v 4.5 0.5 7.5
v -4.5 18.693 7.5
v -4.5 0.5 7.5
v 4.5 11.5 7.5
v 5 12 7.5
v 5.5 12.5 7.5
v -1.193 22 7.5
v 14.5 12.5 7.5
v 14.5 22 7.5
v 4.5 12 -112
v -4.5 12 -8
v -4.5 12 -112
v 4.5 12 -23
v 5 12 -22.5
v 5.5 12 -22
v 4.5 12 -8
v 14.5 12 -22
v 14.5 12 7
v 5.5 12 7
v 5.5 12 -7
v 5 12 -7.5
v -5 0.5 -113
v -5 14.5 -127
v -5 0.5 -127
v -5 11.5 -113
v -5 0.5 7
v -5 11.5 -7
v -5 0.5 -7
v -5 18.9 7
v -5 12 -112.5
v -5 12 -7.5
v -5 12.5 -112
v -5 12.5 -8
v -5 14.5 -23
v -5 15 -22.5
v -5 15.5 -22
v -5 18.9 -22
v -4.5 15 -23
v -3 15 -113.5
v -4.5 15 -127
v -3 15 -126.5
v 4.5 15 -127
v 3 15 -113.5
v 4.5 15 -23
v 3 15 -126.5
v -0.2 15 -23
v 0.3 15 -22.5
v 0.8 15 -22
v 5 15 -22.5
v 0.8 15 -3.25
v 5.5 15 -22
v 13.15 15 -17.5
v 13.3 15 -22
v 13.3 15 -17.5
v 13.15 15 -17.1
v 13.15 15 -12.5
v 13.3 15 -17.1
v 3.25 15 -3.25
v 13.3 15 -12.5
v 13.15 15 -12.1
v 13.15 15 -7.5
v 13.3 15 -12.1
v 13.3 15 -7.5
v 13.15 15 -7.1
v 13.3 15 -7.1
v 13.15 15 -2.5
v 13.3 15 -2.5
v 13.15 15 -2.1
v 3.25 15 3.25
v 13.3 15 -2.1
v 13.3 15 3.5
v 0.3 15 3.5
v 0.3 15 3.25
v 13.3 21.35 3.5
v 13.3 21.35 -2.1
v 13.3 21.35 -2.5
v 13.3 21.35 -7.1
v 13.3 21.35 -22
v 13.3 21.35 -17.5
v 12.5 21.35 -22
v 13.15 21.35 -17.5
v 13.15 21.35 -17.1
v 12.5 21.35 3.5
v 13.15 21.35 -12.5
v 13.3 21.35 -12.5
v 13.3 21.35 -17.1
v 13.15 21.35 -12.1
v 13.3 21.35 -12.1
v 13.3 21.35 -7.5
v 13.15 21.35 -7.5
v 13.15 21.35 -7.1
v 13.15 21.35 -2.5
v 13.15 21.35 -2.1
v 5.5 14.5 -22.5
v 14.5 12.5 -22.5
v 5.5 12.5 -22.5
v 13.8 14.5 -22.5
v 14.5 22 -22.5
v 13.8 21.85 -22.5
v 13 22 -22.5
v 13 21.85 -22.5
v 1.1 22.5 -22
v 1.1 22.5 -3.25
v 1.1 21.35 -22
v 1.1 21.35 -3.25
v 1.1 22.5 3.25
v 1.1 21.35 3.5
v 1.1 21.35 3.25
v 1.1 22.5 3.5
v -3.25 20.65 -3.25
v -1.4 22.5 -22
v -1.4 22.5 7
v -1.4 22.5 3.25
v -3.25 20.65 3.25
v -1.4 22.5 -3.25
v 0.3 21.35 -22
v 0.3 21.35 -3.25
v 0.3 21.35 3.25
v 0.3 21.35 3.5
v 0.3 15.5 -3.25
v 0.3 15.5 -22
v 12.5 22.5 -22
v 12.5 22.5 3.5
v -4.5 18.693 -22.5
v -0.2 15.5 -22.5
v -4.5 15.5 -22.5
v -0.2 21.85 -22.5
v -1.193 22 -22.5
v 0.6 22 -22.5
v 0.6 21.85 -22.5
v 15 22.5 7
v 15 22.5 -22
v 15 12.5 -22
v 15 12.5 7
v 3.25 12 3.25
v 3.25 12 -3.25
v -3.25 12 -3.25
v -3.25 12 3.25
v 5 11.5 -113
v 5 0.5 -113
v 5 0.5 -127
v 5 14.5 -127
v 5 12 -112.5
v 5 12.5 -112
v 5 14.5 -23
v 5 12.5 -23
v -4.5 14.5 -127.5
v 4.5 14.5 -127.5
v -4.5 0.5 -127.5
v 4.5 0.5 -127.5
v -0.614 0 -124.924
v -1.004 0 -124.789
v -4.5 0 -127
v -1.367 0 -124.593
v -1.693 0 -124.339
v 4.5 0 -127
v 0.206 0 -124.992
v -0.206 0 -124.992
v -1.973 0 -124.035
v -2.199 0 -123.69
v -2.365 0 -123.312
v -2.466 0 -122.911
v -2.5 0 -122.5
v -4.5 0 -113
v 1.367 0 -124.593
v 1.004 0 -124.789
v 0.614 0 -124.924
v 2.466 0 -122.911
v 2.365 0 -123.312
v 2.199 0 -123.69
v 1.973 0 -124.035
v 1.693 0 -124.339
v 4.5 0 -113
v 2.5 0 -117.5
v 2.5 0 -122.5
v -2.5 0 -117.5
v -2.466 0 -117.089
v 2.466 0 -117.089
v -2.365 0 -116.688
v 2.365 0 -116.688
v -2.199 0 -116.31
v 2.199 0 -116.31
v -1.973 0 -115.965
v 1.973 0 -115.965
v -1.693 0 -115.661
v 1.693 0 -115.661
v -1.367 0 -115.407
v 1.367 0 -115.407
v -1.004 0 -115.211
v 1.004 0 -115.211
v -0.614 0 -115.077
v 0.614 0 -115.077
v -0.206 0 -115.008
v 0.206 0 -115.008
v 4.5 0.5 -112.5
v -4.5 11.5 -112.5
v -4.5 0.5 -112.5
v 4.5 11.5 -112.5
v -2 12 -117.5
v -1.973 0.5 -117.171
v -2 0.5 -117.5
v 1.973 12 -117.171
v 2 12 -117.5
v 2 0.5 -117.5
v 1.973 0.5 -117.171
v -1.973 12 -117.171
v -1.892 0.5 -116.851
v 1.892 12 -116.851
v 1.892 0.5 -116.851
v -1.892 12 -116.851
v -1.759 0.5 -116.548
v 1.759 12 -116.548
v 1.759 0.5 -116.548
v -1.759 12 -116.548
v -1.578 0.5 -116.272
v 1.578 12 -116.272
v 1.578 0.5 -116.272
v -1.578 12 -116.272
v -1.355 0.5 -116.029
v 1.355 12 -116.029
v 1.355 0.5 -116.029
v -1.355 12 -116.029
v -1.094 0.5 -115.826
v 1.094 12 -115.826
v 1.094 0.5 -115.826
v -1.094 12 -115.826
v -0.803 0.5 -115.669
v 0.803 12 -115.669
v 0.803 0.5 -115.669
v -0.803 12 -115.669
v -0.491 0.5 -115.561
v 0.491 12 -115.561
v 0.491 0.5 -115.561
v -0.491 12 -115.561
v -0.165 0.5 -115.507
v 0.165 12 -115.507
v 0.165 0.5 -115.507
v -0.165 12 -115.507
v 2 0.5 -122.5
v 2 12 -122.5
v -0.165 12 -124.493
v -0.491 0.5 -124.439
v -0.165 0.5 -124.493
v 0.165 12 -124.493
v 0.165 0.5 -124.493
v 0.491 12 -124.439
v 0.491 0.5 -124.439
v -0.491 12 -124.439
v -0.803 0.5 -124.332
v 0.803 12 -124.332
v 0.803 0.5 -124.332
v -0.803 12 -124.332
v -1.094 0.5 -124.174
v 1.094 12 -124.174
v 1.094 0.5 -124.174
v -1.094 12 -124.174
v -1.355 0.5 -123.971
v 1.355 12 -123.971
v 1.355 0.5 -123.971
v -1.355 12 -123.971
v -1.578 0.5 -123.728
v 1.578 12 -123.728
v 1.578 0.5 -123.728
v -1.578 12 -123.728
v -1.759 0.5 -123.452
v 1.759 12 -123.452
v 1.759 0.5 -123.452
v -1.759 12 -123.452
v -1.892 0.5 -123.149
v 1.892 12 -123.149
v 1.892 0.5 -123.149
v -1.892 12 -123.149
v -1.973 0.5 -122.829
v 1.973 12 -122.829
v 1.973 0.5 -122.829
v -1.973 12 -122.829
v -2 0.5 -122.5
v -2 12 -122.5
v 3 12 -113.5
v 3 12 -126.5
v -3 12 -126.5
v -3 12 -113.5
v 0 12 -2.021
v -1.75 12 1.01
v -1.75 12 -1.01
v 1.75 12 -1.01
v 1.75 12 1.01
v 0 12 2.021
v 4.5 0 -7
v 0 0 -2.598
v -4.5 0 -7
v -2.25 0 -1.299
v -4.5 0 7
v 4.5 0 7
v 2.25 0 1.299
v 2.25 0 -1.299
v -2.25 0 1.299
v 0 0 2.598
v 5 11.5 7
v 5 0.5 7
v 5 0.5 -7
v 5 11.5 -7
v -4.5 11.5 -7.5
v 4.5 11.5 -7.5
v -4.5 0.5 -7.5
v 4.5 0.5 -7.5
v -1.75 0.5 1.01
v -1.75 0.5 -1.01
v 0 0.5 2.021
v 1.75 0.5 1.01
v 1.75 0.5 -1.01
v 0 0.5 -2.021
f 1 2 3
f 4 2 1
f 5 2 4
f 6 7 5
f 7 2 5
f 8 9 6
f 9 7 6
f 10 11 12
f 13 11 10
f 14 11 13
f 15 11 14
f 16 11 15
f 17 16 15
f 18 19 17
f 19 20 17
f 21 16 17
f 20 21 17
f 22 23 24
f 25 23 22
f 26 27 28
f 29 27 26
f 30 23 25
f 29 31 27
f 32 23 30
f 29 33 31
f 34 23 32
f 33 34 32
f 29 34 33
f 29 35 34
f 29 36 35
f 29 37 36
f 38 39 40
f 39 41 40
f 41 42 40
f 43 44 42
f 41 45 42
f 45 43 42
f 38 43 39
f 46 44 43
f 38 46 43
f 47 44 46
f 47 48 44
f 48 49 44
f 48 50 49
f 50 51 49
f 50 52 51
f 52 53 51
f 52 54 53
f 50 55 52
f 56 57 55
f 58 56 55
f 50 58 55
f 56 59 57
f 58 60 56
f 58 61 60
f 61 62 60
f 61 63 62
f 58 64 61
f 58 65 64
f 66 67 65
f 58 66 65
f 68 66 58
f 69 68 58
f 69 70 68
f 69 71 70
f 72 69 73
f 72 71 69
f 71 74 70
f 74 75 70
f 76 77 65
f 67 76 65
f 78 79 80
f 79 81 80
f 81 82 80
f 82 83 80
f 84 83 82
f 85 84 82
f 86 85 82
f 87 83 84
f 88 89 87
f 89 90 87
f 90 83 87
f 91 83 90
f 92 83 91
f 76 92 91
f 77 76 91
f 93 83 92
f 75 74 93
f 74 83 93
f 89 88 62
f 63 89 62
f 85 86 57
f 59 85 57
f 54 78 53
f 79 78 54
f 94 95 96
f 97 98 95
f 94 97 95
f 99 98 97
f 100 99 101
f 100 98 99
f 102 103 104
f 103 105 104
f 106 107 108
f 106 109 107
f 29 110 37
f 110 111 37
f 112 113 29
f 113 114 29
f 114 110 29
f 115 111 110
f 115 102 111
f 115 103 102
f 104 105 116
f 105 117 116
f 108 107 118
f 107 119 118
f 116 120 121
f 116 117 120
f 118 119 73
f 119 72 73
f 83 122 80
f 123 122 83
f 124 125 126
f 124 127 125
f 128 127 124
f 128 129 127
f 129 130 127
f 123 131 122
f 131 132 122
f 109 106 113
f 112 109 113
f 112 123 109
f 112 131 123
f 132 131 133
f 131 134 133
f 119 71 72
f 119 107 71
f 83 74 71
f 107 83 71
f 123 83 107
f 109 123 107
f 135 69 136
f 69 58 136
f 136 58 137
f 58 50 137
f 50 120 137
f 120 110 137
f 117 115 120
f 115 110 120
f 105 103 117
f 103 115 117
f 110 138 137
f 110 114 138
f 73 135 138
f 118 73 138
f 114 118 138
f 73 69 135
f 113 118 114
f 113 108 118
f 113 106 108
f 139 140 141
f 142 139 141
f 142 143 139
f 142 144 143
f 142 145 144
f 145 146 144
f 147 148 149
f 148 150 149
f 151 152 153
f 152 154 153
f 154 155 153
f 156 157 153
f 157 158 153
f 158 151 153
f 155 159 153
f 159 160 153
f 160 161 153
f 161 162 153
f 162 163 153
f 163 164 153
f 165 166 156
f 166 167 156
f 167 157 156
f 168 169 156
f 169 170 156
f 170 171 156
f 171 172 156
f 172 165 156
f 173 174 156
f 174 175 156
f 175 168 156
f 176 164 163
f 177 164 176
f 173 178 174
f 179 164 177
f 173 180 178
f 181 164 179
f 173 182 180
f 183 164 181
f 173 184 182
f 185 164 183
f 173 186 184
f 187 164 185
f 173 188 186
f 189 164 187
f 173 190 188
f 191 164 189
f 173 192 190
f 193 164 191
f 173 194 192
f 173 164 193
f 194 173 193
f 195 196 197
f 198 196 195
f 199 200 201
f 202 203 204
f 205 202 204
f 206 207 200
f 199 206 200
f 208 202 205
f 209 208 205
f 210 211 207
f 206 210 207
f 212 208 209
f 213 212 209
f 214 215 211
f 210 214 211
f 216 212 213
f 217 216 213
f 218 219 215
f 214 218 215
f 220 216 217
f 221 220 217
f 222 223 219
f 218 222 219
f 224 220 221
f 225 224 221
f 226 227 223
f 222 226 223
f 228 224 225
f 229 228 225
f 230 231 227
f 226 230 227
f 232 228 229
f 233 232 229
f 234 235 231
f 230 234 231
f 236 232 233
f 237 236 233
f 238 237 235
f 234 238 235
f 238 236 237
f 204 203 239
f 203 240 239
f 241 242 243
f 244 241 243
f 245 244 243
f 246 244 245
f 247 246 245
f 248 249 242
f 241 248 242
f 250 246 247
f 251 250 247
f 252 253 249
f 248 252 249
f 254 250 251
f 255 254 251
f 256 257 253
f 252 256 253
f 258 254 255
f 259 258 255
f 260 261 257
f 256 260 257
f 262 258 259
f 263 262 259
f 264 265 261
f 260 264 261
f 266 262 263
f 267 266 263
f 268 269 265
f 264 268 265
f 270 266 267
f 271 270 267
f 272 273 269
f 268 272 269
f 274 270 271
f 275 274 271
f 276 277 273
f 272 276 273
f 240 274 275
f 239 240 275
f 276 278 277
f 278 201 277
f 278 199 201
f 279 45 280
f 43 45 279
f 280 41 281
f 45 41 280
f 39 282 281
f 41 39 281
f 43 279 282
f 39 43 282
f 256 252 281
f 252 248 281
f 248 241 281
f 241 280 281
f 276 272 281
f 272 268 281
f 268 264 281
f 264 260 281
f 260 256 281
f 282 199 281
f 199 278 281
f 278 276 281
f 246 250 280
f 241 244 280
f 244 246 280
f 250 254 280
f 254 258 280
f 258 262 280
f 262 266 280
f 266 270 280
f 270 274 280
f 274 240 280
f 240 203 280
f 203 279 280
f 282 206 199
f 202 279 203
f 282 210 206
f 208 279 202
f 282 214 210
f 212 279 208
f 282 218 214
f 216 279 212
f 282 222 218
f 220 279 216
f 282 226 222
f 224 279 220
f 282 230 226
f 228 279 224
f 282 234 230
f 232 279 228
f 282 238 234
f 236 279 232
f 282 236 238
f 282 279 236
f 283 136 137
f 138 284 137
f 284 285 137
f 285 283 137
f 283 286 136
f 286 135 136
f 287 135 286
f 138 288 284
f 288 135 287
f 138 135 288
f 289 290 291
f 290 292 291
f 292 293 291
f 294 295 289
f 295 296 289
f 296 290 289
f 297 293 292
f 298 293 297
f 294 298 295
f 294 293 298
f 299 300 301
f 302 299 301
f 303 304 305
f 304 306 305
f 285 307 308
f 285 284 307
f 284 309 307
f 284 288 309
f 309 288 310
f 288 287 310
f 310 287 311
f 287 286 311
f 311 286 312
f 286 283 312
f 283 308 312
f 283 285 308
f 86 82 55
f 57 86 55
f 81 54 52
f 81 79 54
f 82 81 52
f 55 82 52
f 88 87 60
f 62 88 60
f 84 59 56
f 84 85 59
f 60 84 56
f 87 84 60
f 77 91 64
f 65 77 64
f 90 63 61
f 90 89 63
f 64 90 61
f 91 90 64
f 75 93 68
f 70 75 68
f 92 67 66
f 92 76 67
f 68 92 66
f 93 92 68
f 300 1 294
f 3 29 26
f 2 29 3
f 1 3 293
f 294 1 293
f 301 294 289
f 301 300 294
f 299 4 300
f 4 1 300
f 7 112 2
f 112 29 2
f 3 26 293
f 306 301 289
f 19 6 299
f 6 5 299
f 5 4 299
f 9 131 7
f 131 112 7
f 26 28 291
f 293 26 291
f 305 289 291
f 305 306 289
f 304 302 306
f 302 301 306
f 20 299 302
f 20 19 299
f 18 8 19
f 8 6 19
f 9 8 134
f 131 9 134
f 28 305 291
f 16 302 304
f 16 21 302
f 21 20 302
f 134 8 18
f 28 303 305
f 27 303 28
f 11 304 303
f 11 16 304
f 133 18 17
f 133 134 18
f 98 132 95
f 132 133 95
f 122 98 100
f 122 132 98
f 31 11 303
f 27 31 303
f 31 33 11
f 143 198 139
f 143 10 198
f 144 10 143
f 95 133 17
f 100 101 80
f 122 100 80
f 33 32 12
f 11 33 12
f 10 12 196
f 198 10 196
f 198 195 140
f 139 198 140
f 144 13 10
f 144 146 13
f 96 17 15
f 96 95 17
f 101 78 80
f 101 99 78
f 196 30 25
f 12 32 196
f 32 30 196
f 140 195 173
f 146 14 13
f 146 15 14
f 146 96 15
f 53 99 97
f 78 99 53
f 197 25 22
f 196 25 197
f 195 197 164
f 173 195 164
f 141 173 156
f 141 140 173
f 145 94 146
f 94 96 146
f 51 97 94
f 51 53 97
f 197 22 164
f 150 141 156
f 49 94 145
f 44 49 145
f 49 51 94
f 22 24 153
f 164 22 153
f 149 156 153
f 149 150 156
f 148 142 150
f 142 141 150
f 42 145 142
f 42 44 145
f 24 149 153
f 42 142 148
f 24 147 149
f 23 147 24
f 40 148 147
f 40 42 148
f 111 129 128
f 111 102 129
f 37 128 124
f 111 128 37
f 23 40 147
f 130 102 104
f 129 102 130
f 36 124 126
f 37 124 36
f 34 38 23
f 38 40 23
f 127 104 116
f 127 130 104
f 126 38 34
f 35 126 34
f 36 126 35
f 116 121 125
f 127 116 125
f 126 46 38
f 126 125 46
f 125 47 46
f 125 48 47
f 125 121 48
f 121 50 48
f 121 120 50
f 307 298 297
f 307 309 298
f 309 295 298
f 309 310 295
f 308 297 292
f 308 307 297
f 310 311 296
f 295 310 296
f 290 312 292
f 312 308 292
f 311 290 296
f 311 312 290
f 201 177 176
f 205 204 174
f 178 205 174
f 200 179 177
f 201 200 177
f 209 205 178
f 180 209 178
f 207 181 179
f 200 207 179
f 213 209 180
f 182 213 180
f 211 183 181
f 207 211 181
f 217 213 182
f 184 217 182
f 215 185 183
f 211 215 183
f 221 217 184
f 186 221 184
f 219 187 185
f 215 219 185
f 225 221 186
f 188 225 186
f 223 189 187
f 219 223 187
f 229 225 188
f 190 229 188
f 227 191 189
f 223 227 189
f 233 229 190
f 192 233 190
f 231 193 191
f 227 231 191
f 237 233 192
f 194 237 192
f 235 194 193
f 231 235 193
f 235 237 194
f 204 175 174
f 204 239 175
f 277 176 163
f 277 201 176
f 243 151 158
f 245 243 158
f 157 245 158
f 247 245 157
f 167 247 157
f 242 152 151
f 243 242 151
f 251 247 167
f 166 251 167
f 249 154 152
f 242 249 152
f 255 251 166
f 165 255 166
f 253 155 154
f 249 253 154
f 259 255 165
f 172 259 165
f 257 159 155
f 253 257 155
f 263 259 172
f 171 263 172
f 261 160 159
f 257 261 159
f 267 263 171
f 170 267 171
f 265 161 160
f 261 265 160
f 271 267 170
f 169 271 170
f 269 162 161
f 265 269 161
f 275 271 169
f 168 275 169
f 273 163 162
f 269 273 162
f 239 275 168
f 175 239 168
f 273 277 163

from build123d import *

# Parameters (mm, degrees)
SKETCH2_W             = 10
SKETCH2_H             = 15
BOSS_EXTRUDE1_DEPTH   = 12
BOSS_EXTRUDE1_2_DEPTH = 12
BOSS_EXTRUDE2_DEPTH   = 30
CUT_EXTRUDE3_START    = -0.8
SKETCH5_W             = 26
SKETCH5_H             = 6.35
CUT_EXTRUDE3_DEPTH    = 13
SKETCH9_W             = 6.5
SKETCH9_H             = 6.5
CUT_EXTRUDE7_DEPTH    = 129.938939037
SKETCH11_W            = 11.4
SKETCH11_H            = 7.5
BOSS_EXTRUDE3_DEPTH   = 4
SKETCH12_W            = 10
SKETCH12_H            = 3
BOSS_EXTRUDE4_DEPTH   = 105
SKETCH13_W            = 6
SKETCH13_H            = 13
CUT_EXTRUDE9_DEPTH    = 129.938939037
SKETCH16_W            = 0.4
SKETCH16_H            = 6.35
BOSS_EXTRUDE5_DEPTH   = 0.15
CHAMFER3_SIZE         = 0.5


with BuildPart() as part:
    # Sketch2 → Boss-Extrude1 (new body)
    with BuildSketch(Plane(origin=(0, 0, 0), x_dir=(1, 0, 0), z_dir=(0, 1, 0))):
        Rectangle(SKETCH2_W, SKETCH2_H)
        Polygon((-1.75, -1.010362971), (0, -2.020725942), (1.75, -1.010362971), (1.75, 1.010362971), (0, 2.020725942), (-1.75, 1.010362971), align=None, mode=Mode.SUBTRACT)
    extrude(amount=BOSS_EXTRUDE1_DEPTH)


with BuildPart() as body_2:
    # Sketch2 → Boss-Extrude1 2 (new body)
    with BuildSketch(Plane(origin=(0, 0, 0), x_dir=(1, 0, 0), z_dir=(0, 1, 0))):
        with Locations((0, 120)):
            Rectangle(SKETCH2_W, SKETCH2_H)
        with BuildLine():
            Line((-2, 117.5), (-2, 122.5))
            ThreePointArc((-2, 122.5), (0, 124.5), (2, 122.5))
            Line((2, 122.5), (2, 117.5))
            ThreePointArc((2, 117.5), (0, 115.5), (-2, 117.5))
        make_face(mode=Mode.SUBTRACT)
    extrude(amount=BOSS_EXTRUDE1_2_DEPTH)



with BuildPart() as body_3:
    # Sketch3 → Boss-Extrude2 (new body)
    with BuildSketch(Plane.XY.offset(7.5)):
        Polygon((-1.4, 22.5), (1.1, 22.5), (1.1, 15), (12.5, 15), (12.5, 22.5), (15, 22.5), (15, 12), (-5, 12), (-5, 18.9), align=None)
    extrude(amount=-BOSS_EXTRUDE2_DEPTH)

    # Sketch5 → Cut-Extrude3 (cut)
    with BuildSketch(Plane.ZY.offset(-12.5).offset(CUT_EXTRUDE3_START)):
        with Locations((-9.5, 18.175)):
            Rectangle(SKETCH5_W, SKETCH5_H)
    extrude(amount=CUT_EXTRUDE3_DEPTH, mode=Mode.SUBTRACT)

    # Sketch9 → Cut-Extrude7 (cut, through all)
    with BuildSketch(Plane(origin=(0, 12, 0), x_dir=(1, 0, 0), z_dir=(0, 1, 0))):
        Rectangle(SKETCH9_W, SKETCH9_H)
    extrude(amount=CUT_EXTRUDE7_DEPTH, mode=Mode.SUBTRACT)

    # Sketch11 → Boss-Extrude3 (add)
    with BuildSketch(Plane.XY.offset(7.5)):
        with Locations((6.8, 18.75)):
            Rectangle(SKETCH11_W, SKETCH11_H)
    extrude(amount=-BOSS_EXTRUDE3_DEPTH)


with BuildPart() as body_2_1:
    add(body_2.part)

    add(body_3.part)  # Boss-Extrude4 merges body 3
    # Sketch12 → Boss-Extrude4 (add)
    with BuildSketch(Plane(origin=(0, 0, -22.5), x_dir=(-1, 0, 0), z_dir=(0, 0, -1))):
        with Locations((0, 13.5)):
            Rectangle(SKETCH12_W, SKETCH12_H)
    extrude(amount=BOSS_EXTRUDE4_DEPTH)

    # Sketch13 → Cut-Extrude9 (cut, through all)
    with BuildSketch(Plane.XZ.offset(-12)):
        with Locations((0, -120)):
            Rectangle(SKETCH13_W, SKETCH13_H)
    extrude(amount=-CUT_EXTRUDE9_DEPTH, mode=Mode.SUBTRACT)

    # Combine2: union part
    add(part.part)

    # Sketch16 → Boss-Extrude5 (add)
    with BuildSketch(Plane.ZY.offset(-13.3)):
        with Locations((-17.3, 18.175)):
            Rectangle(SKETCH16_W, SKETCH16_H)
        with Locations((-12.3, 18.175)):
            Rectangle(SKETCH16_W, SKETCH16_H)
        with Locations((-7.3, 18.175)):
            Rectangle(SKETCH16_W, SKETCH16_H)
        with Locations((-2.3, 18.175)):
            Rectangle(SKETCH16_W, SKETCH16_H)
    extrude(amount=BOSS_EXTRUDE5_DEPTH)

    # Chamfer3
    chamfer3_edges = [body_2_1.edges().sort_by_distance(p)[0] for p in [
        (10, 12, -22.5),
        (5, 7.5, -127.5),
        (5, 15, -75),
        (5, 13.5, -22.5),
        (0, 15, -127.5),
        (-5, 15, -75),
        (-2.35, 15, -22.5),
        (-5, 7.5, -127.5),
        (-5, 12, -60),
        (5, 12, -67.5),
        (0, 12, -112.5),
        (-2, 0, -120),
        (0, 0, -115.5),
        (2, 0, -120),
        (0, 0, -124.5),
        (5, 0, -120),
        (5, 6, -112.5),
        (0, 0, -127.5),
        (-5, 0, -120),
        (0, 0, -112.5),
        (-5, 6, -112.5),
        (15, 17.25, 7.5),
        (-5, 9.45, 7.5),
        (15, 17.25, -22.5),
        (10, 12, 7.5),
        (5, 12, 0),
        (0, 12, -7.5),
        (-0.875, 0, -1.515544457),
        (-1.75, 0, 0),
        (-0.875, 0, 1.515544457),
        (0.875, 0, 1.515544457),
        (1.75, 0, 0),
        (0.875, 0, -1.515544457),
        (5, 0, 0),
        (5, 6, 7.5),
        (0, 0, -7.5),
        (5, 6, -7.5),
        (-5, 0, 0),
        (-5, 6, -7.5),
        (0, 0, 7.5),
        (15, 12, -7.5),
        (13.75, 22.5, -22.5),
        (12.5, 21.925, -22.5),
        (9.15, 15, -22.5),
        (1.1, 21.925, -22.5),
        (12.9, 21.35, -22.5),
        (-0.15, 22.5, -22.5),
        (0.7, 21.35, -22.5),
        (0.3, 18.175, -22.5),
        (13.3, 18.175, -22.5),
        (-3.2, 20.7, -22.5),
        (-5, 16.95, -22.5),
        (0.3, 15, -12.875),
        (-3.2, 20.7, 7.5),
        (6.8, 22.5, 7.5),
    ]]
    chamfer(chamfer3_edges, length=CHAMFER3_SIZE)


solid = body_2_1.part
